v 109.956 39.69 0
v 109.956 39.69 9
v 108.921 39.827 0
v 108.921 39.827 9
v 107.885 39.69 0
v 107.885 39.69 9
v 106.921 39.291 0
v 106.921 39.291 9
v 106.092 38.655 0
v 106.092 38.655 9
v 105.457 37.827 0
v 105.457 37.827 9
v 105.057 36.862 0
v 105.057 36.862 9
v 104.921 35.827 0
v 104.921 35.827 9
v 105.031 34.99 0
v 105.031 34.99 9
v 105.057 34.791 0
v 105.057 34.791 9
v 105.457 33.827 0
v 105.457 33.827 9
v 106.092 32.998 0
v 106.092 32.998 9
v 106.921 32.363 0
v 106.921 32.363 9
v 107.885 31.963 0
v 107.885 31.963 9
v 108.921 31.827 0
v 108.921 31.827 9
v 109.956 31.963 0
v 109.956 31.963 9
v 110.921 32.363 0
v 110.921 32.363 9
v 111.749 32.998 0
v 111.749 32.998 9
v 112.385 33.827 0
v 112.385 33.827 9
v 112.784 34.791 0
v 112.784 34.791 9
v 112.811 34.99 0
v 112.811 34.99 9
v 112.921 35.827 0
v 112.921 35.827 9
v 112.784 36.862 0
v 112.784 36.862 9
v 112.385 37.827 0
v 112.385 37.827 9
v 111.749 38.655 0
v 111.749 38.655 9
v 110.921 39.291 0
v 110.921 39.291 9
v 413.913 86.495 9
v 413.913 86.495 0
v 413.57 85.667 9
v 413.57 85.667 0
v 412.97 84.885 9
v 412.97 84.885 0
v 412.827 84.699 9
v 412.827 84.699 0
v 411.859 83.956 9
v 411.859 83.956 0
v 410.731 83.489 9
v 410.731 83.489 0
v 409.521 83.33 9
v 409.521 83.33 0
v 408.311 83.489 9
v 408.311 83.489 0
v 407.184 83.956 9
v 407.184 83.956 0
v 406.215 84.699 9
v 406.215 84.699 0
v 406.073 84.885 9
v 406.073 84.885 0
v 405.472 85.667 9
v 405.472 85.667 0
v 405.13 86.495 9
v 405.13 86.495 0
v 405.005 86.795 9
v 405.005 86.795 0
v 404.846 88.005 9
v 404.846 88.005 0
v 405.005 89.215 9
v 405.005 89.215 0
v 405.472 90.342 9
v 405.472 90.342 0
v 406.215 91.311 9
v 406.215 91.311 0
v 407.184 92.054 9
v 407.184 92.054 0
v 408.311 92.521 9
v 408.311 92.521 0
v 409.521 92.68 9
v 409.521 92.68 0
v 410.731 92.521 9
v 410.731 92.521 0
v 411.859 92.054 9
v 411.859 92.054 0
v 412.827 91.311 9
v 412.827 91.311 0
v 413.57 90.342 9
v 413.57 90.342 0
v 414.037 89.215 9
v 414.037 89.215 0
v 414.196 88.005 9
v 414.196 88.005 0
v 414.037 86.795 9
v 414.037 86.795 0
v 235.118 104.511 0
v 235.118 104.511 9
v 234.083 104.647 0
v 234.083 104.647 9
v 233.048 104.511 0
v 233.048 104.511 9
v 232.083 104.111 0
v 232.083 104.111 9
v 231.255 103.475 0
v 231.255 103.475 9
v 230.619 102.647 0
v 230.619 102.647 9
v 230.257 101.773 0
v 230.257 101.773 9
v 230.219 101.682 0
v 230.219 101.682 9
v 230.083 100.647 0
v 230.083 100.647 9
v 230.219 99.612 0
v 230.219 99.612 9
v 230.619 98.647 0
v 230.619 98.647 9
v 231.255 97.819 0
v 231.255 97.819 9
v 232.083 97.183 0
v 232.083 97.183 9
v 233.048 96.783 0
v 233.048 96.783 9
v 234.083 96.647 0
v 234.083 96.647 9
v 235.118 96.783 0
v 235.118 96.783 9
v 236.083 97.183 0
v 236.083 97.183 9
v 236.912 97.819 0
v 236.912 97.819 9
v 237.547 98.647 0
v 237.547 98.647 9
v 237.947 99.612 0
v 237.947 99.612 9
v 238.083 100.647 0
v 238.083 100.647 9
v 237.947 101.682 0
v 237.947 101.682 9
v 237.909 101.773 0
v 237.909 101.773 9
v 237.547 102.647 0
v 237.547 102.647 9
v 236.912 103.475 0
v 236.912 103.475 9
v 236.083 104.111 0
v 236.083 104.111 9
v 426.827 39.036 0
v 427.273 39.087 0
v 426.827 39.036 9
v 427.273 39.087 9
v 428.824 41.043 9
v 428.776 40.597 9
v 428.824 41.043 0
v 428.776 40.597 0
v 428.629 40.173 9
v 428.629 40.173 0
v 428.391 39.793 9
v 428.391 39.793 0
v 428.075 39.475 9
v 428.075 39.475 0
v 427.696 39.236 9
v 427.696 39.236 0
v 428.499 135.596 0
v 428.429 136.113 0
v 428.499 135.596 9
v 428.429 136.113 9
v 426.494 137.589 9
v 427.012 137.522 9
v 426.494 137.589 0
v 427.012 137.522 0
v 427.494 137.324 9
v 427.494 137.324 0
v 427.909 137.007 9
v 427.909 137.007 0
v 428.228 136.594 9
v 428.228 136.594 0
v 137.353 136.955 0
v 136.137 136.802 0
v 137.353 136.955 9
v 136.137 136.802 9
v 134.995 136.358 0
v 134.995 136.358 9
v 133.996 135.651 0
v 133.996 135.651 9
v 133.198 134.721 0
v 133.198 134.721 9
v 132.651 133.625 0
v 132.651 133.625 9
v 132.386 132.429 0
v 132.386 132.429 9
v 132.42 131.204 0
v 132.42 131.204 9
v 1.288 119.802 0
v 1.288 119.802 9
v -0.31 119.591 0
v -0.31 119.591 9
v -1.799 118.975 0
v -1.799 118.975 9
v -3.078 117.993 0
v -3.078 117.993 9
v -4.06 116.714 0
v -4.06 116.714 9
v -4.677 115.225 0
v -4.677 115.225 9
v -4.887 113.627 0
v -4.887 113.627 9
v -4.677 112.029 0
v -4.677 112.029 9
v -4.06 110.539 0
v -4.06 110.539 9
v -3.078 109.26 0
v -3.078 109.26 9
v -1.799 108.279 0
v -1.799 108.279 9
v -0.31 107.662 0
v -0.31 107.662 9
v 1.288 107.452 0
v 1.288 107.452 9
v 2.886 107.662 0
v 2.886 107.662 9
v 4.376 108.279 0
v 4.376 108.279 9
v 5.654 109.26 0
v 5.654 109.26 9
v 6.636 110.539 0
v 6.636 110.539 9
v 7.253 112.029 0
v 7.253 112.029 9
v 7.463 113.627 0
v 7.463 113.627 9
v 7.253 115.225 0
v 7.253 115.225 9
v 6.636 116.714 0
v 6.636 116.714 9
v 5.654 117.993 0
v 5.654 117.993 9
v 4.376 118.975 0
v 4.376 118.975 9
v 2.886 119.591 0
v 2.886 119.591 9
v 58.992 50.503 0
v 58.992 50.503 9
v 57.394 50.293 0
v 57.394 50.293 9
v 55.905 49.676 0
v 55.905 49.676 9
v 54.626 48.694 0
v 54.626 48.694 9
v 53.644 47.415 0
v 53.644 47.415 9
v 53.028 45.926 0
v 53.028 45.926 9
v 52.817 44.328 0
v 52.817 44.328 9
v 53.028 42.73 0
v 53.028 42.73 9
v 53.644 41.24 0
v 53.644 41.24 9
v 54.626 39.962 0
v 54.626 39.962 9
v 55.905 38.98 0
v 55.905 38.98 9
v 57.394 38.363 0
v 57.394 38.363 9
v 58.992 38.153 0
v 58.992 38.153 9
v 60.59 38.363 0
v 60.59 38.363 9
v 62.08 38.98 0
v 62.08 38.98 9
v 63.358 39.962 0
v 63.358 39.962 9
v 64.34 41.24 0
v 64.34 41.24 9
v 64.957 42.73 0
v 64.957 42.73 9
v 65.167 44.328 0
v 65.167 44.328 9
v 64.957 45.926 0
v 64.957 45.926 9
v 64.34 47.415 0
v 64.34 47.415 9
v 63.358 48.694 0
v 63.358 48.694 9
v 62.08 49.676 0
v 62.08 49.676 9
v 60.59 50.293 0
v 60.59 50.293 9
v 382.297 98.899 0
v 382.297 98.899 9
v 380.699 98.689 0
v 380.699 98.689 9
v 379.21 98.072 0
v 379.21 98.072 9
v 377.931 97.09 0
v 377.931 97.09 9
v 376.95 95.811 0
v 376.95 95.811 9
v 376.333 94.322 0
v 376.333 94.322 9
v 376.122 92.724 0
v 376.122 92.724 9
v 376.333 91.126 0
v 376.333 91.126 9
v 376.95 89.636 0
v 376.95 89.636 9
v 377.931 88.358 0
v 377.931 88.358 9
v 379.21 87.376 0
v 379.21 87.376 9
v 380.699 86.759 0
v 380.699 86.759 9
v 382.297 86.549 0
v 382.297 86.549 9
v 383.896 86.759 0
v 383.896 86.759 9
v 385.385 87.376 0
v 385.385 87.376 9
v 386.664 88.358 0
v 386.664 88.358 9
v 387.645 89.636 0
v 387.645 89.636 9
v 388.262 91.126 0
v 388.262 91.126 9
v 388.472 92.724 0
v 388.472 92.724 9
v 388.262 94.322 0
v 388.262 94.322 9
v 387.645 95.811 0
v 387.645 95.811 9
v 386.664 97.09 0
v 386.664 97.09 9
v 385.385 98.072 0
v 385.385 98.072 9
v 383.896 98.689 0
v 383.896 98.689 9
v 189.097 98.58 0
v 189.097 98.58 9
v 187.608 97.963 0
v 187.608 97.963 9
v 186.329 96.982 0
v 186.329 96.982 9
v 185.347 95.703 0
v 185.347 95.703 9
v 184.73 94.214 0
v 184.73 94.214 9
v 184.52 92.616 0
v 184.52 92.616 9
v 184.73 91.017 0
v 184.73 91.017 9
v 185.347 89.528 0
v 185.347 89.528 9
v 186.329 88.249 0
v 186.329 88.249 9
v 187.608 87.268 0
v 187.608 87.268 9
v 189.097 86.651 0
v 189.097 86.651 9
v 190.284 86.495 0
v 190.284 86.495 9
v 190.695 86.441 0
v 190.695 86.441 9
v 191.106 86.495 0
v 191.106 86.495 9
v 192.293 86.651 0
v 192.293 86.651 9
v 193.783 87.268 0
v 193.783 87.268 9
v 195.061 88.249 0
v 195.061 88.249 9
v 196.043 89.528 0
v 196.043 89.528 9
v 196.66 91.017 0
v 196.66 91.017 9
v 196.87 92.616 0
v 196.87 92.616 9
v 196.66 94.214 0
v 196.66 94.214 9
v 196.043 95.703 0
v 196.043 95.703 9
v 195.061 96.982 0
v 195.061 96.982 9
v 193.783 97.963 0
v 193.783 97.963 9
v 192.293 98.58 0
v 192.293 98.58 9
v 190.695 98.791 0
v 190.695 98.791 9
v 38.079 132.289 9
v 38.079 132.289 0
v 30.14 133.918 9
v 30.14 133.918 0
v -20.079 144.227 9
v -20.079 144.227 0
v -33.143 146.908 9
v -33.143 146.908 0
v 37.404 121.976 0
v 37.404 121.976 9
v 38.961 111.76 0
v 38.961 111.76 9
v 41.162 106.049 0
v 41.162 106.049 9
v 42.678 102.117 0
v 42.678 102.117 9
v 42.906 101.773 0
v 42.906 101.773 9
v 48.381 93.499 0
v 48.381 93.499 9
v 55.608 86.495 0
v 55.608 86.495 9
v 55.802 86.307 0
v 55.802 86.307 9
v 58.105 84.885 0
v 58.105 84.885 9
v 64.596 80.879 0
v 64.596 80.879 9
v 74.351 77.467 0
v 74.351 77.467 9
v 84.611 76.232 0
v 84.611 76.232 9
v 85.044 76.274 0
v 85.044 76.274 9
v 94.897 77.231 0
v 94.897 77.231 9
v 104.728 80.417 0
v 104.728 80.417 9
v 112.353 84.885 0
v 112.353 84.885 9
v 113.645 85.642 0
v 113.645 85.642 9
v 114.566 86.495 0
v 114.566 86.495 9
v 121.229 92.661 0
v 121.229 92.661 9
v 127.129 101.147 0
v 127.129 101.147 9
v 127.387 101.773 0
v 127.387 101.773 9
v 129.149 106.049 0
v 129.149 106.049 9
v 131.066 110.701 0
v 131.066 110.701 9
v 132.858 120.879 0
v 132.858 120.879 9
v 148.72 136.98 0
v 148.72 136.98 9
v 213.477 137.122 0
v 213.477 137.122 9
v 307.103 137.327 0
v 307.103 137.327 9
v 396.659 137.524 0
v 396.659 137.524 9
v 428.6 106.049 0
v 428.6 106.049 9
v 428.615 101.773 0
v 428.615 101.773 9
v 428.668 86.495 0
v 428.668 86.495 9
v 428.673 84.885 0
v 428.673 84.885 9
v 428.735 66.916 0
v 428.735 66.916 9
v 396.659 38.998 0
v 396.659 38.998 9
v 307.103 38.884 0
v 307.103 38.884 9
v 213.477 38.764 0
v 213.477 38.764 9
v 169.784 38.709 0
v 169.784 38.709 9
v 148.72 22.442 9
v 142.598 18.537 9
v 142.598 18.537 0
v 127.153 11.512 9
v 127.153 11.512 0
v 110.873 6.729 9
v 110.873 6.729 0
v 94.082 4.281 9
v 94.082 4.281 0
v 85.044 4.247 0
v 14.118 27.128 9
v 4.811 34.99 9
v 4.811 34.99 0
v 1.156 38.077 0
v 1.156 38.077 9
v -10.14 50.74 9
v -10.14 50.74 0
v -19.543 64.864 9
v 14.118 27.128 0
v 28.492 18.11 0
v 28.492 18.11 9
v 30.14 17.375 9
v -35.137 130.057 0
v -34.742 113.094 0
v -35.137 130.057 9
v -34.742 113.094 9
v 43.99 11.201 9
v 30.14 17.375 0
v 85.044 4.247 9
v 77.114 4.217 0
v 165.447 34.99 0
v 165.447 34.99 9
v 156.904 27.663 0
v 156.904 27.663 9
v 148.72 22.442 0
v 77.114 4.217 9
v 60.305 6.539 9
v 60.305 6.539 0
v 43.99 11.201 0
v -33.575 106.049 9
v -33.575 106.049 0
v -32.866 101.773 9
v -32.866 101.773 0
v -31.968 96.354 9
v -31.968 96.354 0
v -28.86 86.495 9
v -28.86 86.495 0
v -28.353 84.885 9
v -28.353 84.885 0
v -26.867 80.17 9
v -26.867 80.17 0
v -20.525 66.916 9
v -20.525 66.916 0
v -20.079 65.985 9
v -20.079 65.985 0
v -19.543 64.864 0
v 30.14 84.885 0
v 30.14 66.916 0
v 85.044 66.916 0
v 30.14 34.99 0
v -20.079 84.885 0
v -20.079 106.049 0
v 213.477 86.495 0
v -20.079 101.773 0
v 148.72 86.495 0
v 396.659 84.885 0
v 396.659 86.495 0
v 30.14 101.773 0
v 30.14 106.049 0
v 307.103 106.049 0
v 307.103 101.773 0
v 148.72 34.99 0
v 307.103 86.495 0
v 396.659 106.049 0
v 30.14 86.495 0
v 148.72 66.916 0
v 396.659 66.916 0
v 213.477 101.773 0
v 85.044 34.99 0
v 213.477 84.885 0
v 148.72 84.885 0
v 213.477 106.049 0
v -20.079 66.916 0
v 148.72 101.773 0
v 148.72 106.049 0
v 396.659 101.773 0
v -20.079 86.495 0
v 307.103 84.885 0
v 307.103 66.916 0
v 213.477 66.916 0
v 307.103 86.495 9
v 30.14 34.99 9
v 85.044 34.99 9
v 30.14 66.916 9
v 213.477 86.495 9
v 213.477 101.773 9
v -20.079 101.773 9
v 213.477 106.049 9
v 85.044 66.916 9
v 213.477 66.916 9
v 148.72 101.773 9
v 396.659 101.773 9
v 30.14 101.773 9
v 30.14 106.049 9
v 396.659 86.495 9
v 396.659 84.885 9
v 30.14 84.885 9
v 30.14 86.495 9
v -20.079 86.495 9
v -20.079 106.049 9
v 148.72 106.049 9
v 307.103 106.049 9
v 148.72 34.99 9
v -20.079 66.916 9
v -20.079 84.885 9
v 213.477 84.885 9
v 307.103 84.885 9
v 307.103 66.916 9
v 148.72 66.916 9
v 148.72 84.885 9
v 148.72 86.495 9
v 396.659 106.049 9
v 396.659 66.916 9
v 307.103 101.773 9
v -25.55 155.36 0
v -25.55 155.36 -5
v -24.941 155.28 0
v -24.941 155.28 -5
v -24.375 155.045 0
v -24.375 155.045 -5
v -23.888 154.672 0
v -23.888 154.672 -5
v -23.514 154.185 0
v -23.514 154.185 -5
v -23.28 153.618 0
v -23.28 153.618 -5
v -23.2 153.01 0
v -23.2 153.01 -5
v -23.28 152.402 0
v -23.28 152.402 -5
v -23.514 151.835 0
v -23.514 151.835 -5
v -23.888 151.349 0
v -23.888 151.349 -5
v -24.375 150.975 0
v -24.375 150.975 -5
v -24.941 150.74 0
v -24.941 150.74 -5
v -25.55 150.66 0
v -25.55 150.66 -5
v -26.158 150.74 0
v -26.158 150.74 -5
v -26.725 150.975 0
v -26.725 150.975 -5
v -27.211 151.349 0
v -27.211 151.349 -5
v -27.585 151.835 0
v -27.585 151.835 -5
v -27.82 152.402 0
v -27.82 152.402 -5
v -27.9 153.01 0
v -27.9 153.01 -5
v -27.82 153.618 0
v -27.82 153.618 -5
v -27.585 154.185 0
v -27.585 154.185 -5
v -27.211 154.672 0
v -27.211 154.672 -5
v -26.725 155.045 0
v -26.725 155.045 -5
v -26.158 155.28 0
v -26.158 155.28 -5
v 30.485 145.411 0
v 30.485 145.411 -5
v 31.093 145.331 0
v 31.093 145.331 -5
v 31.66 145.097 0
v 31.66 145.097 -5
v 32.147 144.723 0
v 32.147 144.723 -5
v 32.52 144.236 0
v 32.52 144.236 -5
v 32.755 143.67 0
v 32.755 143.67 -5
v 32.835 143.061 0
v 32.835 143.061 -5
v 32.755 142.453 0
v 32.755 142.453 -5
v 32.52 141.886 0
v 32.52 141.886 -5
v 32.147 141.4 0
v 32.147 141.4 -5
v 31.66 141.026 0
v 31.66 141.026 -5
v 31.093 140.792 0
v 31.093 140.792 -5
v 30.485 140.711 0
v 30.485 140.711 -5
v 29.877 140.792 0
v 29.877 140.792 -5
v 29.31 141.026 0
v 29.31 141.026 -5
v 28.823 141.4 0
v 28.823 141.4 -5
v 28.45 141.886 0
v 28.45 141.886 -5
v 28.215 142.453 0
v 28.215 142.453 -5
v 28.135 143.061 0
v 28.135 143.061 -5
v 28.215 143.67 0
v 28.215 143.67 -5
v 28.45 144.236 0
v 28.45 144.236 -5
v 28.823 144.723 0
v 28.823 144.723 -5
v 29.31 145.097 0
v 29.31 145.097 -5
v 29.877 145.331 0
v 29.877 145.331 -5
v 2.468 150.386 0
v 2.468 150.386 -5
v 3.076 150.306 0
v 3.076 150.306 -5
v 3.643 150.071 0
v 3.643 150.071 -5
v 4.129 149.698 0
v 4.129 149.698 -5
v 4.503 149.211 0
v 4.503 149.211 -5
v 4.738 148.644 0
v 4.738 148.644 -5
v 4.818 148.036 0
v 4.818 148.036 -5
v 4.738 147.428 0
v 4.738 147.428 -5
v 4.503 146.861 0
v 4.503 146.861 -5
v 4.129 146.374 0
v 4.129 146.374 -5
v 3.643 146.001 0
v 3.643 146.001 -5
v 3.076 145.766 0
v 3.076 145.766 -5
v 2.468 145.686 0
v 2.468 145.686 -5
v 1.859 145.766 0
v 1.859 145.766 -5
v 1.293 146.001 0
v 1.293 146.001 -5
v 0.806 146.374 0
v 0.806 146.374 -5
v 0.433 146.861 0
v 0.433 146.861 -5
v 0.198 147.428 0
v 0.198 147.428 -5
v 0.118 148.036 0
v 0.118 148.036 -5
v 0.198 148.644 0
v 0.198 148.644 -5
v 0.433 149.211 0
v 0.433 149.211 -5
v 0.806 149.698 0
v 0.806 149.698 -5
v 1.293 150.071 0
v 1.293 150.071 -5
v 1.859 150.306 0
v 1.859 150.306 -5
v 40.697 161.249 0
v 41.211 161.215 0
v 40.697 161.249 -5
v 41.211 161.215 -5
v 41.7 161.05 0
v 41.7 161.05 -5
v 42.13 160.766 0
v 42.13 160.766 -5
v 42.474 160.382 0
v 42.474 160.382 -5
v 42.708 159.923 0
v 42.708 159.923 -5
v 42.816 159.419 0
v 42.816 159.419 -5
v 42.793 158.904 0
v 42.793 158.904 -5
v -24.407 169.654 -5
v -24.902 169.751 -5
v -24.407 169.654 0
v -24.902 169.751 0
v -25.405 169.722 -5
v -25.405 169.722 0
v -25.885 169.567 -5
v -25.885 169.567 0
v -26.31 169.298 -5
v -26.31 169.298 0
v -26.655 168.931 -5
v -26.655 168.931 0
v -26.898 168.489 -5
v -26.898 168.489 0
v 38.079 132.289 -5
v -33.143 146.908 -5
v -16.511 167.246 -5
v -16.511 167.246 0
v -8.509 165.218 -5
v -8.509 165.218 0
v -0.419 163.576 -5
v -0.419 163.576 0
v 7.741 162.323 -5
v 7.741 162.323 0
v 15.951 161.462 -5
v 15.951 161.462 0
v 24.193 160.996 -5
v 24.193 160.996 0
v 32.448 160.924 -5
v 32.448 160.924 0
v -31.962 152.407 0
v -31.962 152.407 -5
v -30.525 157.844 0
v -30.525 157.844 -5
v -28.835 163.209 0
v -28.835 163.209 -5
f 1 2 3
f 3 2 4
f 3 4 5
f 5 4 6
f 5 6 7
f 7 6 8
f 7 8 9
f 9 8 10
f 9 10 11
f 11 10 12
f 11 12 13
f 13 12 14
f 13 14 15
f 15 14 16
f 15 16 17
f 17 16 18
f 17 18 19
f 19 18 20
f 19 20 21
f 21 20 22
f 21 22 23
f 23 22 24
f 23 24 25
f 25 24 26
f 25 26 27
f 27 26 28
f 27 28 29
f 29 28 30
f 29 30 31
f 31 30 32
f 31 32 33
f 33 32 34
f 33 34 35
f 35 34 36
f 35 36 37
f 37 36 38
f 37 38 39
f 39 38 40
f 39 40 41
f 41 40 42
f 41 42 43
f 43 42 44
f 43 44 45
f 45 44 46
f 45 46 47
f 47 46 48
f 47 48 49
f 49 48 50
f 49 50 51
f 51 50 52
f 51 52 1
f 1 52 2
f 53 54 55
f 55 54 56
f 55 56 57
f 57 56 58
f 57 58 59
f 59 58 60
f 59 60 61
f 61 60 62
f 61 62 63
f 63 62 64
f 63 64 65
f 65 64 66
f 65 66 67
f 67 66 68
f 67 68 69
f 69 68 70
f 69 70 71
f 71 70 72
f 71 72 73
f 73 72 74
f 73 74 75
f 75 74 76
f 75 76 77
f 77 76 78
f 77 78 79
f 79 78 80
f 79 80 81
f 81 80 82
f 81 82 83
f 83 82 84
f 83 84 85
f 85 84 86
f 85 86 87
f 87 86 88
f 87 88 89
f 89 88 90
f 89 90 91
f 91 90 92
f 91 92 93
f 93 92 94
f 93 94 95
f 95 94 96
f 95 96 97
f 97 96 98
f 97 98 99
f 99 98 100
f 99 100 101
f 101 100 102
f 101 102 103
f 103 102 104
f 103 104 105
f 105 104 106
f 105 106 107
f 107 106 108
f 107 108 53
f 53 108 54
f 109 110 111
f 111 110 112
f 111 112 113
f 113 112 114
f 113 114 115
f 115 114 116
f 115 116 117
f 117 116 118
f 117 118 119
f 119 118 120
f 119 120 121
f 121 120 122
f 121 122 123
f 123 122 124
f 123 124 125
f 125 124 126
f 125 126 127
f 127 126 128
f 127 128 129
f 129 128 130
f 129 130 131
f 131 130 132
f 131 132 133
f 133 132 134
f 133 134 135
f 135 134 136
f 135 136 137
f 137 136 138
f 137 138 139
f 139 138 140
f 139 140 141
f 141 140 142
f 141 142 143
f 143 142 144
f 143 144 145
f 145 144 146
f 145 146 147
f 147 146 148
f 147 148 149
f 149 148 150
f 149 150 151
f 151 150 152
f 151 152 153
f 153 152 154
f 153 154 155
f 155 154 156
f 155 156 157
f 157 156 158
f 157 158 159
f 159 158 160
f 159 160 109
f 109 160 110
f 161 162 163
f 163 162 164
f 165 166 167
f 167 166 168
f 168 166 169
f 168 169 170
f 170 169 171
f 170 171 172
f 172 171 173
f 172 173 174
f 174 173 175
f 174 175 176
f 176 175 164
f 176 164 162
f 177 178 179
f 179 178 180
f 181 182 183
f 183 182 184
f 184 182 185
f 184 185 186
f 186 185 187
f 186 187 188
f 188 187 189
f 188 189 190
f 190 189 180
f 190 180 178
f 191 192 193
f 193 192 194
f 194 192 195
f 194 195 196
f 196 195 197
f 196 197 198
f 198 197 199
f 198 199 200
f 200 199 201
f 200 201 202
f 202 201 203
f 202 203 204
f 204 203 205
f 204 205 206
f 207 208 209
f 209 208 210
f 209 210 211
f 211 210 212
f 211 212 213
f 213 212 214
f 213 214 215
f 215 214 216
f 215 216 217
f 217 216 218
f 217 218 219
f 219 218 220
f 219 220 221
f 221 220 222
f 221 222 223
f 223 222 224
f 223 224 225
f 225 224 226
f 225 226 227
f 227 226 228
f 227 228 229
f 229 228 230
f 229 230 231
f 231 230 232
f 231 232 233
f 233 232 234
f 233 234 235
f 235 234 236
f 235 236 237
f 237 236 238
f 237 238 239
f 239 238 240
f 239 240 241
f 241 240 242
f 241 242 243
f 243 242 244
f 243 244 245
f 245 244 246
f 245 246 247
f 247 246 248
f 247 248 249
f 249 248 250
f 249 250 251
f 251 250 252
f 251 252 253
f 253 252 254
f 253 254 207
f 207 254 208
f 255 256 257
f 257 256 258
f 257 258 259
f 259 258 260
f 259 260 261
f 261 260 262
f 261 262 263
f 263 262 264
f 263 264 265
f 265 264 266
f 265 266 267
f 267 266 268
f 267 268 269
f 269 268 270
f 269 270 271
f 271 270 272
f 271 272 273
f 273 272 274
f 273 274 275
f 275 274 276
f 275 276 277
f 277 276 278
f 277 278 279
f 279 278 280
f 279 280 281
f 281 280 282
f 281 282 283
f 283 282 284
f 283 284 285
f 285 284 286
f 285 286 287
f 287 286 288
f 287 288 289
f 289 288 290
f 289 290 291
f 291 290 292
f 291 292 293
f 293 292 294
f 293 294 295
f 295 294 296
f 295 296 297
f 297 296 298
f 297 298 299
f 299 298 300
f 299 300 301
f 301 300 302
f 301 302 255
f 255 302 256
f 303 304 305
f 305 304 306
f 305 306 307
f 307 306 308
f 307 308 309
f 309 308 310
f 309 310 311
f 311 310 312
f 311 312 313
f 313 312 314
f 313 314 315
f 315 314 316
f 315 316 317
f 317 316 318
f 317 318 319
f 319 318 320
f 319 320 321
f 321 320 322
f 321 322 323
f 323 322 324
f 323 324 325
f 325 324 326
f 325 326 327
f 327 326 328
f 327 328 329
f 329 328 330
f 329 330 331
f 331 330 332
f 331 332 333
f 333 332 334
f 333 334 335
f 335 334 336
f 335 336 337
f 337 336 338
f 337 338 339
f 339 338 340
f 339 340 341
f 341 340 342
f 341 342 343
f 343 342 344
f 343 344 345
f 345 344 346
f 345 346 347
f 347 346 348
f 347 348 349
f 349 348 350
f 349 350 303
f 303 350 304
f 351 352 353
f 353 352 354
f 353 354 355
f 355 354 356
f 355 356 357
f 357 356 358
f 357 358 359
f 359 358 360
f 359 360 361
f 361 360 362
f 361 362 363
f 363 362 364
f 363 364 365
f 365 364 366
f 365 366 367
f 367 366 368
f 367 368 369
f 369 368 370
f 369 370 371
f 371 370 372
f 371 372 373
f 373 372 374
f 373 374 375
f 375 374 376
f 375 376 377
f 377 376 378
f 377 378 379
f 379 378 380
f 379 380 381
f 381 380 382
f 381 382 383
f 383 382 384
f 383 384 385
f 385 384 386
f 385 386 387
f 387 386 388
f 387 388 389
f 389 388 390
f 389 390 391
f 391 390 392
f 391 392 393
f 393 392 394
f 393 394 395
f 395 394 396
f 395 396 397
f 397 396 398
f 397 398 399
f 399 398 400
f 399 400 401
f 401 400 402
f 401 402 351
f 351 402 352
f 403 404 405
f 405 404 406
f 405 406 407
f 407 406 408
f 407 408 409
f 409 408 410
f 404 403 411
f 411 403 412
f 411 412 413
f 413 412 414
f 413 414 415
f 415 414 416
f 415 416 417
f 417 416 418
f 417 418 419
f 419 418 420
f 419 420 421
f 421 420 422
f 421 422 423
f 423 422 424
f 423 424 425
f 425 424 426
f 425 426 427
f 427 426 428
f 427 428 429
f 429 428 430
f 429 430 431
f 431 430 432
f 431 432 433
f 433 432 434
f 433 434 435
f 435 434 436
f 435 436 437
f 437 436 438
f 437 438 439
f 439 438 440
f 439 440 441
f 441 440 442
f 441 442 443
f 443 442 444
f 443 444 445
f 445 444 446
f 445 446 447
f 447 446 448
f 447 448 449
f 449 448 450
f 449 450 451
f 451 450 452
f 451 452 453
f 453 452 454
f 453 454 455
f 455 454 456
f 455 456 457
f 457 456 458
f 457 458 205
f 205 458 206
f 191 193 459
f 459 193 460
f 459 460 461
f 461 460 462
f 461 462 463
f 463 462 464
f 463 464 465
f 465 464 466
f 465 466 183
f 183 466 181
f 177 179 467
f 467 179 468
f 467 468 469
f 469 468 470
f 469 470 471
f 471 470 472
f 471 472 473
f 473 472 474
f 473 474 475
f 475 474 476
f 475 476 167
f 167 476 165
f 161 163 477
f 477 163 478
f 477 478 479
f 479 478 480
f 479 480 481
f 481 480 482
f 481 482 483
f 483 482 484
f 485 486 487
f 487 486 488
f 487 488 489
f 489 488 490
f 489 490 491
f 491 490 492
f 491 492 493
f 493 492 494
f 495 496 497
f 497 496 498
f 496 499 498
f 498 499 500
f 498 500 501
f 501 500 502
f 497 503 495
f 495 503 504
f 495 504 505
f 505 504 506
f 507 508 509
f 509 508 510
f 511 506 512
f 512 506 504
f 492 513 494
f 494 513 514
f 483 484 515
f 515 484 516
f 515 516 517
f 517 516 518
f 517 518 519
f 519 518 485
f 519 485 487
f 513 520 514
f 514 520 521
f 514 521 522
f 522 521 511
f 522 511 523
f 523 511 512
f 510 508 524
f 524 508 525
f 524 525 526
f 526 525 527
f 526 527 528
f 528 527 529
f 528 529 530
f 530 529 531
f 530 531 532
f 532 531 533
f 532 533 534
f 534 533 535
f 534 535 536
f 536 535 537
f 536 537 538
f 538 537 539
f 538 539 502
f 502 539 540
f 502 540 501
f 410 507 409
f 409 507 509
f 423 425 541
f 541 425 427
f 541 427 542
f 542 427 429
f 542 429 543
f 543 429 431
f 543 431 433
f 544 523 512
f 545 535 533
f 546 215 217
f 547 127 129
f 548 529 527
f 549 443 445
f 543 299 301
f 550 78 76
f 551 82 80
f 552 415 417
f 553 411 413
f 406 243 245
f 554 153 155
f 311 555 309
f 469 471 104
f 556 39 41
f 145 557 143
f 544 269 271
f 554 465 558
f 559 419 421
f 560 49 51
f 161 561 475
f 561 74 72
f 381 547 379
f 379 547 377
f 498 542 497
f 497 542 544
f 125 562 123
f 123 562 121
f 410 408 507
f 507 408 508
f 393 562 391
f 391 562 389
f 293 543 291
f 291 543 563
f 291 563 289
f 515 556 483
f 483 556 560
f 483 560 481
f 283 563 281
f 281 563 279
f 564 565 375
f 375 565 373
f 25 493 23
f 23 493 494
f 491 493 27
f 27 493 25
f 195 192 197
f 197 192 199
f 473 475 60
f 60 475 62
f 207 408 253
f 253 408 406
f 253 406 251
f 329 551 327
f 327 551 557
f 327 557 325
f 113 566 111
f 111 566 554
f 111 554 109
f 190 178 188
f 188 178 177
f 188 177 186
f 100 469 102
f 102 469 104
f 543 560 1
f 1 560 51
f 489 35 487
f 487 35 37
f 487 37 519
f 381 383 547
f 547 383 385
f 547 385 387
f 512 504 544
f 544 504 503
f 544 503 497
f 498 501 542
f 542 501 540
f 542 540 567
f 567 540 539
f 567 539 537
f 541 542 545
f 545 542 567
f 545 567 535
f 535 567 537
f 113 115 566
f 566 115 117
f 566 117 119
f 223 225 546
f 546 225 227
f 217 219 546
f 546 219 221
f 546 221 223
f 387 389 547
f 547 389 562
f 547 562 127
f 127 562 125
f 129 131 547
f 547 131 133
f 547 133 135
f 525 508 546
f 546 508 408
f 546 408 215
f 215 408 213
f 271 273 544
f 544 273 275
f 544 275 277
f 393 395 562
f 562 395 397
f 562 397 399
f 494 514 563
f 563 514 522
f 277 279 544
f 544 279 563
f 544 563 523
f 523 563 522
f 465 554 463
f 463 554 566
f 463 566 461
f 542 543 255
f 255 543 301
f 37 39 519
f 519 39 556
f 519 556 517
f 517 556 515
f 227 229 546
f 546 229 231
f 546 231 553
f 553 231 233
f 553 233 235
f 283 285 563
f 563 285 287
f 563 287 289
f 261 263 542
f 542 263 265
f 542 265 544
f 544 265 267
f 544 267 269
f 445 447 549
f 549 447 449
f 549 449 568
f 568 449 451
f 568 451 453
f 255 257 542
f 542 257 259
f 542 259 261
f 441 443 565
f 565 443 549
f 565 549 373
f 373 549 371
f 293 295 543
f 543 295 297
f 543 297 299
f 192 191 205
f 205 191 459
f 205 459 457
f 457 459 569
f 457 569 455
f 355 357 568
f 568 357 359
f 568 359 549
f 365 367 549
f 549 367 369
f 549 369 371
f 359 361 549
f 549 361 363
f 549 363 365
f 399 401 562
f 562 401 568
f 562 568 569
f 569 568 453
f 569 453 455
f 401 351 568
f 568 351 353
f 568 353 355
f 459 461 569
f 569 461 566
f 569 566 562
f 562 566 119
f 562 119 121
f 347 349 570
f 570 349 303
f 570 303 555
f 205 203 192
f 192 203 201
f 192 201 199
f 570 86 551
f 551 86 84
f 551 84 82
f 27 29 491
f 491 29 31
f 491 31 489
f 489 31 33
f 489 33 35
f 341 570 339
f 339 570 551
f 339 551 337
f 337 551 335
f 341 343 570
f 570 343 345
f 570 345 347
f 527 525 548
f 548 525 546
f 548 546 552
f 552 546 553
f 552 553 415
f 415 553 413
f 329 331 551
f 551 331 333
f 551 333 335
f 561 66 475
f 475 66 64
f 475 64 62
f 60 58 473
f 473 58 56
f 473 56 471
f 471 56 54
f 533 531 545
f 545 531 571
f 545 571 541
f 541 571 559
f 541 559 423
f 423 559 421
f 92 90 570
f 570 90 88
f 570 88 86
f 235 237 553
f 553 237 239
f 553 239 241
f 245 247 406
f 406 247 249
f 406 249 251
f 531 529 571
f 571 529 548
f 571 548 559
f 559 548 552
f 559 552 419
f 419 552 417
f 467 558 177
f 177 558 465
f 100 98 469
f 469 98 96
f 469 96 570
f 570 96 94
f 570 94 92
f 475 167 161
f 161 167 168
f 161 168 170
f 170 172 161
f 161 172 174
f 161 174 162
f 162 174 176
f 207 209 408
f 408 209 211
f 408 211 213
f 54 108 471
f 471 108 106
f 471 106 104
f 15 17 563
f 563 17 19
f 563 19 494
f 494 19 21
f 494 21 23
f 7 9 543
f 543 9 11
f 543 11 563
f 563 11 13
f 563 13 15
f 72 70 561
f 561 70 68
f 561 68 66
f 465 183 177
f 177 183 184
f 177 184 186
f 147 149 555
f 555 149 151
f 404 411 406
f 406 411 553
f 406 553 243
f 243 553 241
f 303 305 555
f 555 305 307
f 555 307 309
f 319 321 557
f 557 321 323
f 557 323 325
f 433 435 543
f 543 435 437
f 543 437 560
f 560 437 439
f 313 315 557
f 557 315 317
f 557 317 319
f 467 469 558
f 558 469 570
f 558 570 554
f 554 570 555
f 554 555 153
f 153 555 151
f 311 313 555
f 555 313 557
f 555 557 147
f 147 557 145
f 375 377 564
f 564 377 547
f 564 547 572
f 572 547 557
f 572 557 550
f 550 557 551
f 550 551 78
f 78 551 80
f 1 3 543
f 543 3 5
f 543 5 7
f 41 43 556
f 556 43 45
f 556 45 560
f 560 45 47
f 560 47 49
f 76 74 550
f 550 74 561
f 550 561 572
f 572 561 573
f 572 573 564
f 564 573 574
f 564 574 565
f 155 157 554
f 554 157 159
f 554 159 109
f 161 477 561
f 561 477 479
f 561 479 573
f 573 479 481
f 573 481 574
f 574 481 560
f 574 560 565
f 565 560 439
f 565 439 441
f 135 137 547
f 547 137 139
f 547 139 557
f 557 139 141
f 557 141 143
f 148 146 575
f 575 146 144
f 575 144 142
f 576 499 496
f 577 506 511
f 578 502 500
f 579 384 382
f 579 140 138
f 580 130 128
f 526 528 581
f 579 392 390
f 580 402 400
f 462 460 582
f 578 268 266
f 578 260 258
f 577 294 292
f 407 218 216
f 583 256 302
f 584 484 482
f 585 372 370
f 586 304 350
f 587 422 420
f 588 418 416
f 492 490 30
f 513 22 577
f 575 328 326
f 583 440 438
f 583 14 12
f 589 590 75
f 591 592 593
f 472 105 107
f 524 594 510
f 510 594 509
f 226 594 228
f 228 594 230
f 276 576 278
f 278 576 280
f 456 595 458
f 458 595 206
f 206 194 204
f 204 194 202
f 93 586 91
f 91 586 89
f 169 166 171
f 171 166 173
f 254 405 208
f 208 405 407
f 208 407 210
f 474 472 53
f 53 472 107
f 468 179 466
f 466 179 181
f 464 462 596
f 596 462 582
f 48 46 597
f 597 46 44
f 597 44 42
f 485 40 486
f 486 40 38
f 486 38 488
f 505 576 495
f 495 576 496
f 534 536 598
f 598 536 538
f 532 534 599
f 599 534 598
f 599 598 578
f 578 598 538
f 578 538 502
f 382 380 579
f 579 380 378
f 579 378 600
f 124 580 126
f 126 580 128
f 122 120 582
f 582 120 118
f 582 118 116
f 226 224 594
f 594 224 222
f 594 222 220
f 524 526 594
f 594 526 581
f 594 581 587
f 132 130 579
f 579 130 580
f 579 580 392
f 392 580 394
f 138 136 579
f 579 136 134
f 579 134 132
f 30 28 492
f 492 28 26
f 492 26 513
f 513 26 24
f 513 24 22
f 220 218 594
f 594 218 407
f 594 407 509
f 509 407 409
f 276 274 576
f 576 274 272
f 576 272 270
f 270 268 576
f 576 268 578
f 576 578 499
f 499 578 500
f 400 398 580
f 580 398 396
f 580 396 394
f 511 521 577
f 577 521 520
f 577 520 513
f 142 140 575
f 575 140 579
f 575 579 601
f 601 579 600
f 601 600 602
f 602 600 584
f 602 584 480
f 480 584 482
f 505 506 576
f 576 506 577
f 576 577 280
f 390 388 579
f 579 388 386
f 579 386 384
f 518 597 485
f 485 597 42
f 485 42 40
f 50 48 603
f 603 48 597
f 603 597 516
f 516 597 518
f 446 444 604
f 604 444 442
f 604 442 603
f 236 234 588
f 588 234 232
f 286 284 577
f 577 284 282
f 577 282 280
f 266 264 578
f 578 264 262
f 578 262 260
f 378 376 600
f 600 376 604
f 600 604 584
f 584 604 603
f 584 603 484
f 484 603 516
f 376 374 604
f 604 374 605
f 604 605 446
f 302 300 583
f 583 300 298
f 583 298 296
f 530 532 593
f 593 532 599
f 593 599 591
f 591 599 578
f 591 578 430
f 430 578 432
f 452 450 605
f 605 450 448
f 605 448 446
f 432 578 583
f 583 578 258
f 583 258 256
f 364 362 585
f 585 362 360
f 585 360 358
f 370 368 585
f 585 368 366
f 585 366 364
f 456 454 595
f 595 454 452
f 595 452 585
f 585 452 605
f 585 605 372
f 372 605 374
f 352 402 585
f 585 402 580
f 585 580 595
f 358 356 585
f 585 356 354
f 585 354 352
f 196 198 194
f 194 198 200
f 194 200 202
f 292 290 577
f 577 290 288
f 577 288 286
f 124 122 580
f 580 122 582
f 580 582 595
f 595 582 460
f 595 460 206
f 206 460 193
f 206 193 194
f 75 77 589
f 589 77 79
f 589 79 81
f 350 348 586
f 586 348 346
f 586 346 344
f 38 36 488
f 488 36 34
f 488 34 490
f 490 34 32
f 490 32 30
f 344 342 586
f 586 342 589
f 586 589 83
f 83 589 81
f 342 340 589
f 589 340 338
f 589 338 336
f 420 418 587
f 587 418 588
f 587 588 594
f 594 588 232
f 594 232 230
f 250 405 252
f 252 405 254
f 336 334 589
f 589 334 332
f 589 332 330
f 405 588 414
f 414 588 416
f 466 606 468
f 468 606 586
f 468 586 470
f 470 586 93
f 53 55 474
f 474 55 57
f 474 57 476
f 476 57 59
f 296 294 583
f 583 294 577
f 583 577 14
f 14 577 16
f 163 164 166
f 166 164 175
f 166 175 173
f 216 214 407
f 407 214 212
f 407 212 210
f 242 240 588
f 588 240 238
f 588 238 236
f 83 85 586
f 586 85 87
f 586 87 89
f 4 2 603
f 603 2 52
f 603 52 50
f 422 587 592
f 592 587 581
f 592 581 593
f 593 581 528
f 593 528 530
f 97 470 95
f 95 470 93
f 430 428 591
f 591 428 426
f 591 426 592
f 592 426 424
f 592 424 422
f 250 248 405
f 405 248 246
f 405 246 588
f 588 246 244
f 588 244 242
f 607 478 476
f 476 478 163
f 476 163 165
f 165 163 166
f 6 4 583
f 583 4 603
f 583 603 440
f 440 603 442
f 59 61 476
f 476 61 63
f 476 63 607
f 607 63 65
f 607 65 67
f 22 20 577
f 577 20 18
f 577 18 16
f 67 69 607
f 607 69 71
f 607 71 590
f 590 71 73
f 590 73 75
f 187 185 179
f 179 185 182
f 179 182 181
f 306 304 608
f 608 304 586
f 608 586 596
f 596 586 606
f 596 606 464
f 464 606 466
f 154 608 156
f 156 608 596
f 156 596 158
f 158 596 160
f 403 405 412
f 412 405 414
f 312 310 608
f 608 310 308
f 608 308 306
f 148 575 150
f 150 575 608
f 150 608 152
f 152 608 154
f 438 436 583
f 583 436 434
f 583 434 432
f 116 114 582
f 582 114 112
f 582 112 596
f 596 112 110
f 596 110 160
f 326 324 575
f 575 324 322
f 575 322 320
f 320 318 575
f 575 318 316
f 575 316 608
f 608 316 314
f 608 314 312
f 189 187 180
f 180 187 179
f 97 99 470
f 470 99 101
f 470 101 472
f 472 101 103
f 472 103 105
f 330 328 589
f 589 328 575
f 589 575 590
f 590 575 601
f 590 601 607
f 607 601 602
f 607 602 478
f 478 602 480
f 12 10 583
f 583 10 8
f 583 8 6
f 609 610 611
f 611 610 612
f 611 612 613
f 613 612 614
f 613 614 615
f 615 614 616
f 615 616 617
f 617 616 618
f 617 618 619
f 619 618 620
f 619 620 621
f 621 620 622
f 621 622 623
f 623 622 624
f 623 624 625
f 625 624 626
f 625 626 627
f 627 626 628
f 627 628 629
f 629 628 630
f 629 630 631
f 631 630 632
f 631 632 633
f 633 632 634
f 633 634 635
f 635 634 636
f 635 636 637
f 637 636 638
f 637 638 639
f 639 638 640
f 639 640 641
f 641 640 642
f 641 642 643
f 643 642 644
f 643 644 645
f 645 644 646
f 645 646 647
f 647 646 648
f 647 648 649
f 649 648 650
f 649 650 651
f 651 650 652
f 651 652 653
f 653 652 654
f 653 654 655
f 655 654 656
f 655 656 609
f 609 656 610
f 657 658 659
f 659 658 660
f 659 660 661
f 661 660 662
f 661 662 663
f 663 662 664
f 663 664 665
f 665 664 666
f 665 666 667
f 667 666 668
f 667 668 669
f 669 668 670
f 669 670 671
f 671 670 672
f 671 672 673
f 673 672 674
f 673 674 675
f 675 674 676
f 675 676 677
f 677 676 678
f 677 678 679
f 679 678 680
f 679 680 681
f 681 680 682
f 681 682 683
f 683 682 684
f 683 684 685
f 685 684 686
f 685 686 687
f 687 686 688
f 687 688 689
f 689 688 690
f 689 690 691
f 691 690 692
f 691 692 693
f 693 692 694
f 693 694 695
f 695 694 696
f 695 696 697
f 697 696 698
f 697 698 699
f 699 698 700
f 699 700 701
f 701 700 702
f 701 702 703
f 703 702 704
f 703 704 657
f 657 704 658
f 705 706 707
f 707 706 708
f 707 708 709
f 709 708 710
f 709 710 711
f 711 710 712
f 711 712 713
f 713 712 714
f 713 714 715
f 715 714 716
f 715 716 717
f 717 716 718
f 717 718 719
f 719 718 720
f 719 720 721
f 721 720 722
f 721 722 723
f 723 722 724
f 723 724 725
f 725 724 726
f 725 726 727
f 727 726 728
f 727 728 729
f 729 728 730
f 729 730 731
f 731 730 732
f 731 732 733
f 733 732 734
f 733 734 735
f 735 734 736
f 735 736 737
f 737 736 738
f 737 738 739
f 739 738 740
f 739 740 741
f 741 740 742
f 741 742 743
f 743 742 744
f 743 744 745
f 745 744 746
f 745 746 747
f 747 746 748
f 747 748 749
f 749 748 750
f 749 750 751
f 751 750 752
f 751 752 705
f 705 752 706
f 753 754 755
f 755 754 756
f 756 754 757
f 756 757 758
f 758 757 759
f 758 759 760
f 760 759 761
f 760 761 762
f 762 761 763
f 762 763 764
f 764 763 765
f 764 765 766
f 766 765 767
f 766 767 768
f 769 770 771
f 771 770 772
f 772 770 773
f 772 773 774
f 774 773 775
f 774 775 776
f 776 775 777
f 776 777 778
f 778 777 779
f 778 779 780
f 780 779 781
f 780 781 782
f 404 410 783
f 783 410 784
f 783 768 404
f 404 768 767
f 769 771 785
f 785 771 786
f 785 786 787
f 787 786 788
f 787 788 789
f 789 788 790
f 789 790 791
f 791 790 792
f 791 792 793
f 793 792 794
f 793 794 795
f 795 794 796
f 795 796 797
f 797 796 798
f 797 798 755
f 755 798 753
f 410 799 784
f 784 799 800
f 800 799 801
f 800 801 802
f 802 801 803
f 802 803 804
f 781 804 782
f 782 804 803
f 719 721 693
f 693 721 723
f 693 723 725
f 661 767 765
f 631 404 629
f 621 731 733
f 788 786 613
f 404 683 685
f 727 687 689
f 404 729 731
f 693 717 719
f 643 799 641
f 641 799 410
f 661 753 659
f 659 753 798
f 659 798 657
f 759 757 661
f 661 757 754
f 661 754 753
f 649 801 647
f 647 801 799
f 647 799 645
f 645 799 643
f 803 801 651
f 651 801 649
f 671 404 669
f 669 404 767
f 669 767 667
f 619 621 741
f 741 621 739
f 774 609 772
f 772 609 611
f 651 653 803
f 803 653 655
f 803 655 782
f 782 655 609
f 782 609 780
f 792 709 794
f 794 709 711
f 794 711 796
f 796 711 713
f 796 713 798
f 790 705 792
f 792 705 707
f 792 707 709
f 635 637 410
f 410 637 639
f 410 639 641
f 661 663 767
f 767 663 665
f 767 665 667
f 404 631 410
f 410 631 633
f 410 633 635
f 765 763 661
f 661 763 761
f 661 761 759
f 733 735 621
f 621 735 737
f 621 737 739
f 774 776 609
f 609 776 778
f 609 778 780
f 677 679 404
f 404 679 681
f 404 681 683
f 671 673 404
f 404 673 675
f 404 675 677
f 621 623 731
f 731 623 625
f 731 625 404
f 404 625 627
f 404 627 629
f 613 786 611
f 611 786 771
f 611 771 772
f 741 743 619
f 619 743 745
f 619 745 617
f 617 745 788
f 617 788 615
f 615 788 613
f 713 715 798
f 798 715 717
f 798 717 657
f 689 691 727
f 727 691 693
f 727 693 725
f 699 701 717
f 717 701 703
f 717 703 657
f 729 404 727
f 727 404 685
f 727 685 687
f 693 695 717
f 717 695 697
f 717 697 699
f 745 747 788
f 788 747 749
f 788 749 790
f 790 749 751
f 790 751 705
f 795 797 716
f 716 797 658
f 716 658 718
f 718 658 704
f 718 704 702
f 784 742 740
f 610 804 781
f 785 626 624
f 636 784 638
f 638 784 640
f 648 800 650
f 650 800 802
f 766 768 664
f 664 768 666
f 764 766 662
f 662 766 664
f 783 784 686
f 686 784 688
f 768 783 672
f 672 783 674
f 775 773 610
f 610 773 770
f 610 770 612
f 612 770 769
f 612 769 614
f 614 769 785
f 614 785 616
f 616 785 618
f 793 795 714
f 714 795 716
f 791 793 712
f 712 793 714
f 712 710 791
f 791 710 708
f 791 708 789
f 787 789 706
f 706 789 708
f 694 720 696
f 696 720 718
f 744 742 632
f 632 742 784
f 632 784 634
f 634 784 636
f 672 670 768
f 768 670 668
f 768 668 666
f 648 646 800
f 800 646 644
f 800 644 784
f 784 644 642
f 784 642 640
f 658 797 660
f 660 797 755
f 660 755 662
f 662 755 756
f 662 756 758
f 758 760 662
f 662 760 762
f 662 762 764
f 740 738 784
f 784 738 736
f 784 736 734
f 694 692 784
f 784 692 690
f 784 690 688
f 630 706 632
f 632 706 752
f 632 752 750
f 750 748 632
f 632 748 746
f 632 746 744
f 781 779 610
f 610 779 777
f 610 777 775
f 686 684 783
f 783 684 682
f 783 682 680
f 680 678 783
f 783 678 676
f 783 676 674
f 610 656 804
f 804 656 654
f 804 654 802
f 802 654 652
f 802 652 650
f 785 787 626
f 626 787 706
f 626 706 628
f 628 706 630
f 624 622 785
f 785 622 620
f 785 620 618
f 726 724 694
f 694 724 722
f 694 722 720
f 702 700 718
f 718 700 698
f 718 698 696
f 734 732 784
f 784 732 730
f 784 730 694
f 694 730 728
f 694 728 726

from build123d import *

# Parameters (mm, degrees)
ESBO_O1_R                = 6.175
ESBO_O1_R_2              = 4.675
ESBO_O1_R_3              = 4
RESSALTO_EXTRUS_O1_DEPTH = 9
ESBO_O3_R                = 2.35
RESSALTO_EXTRUS_O2_DEPTH = 5
FILETE1_R                = 2
FILETE2_R                = 5
FILETE3_R                = 2


with BuildPart() as part:
    # Esboço1 → Ressalto-extrusão1 (new body)
    with BuildSketch(Plane.XY):
        with BuildLine():
            Line((131.185001268, 136.941324617), (428.491868014, 137.593385628))
            Line((428.491868014, 137.593385628), (428.831279068, 39.038667427))
            Line((428.831279068, 39.038667427), (169.784133842, 38.708869148))
            ThreePointArc((169.784133842, 38.708869148), (28.491582051, 18.109560868), (-33.143087689, 146.908179569))
            Line((-33.143087689, 146.908179569), (38.078504056, 132.288651538))
            ThreePointArc((38.078504056, 132.288651538), (87.546420662, 76.2884039), (131.185001268, 136.941324617))
        make_face()
        with Locations((190.69502548, 92.615691457)):
            Circle(ESBO_O1_R, mode=Mode.SUBTRACT)
        with Locations((382.297443759, 92.723982486)):
            Circle(ESBO_O1_R, mode=Mode.SUBTRACT)
        with Locations((409.52113325, 88.004907998)):
            Circle(ESBO_O1_R_2, mode=Mode.SUBTRACT)
        with Locations((234.083144105, 100.646929333)):
            Circle(ESBO_O1_R_3, mode=Mode.SUBTRACT)
        with Locations((58.992106854, 44.327990976)):
            Circle(ESBO_O1_R, mode=Mode.SUBTRACT)
        with Locations((108.920722634, 35.826602606)):
            Circle(ESBO_O1_R_3, mode=Mode.SUBTRACT)
        with Locations((1.288049242, 113.626800727)):
            Circle(ESBO_O1_R, mode=Mode.SUBTRACT)
    extrude(amount=RESSALTO_EXTRUS_O1_DEPTH)

    # Filete2
    filete2_edges = [part.edges().sort_by_distance(p)[0] for p in [
        (131.185001268, 136.941324617, 4.5),
    ]]
    fillet(filete2_edges, radius=FILETE2_R)

    # Filete3
    filete3_edges = [part.edges().sort_by_distance(p)[0] for p in [
        (428.491868014, 137.593385628, 4.5),
        (428.831279068, 39.038667427, 4.5),
    ]]
    fillet(filete3_edges, radius=FILETE3_R)


with BuildPart() as body_2:
    # Esboço3 → Ressalto-extrusão2 (new body)
    with BuildSketch(Plane(origin=(0, 0, 0), x_dir=(-1, 0, 0), z_dir=(0, 0, -1))):
        with BuildLine():
            Line((-43.239696233, 161.428448711), (-38.078504056, 132.288651538))
            Line((-38.078504056, 132.288651538), (33.143087689, 146.908179569))
            ThreePointArc((33.143087689, 146.908179569), (30.256436099, 158.757790962), (26.1859926, 170.254639978))
            ThreePointArc((26.1859926, 170.254639978), (-8.074093344, 162.280204252), (-43.239696233, 161.428448711))
        make_face()
        with Locations((-2.467708184, 148.035842502)):
            Circle(ESBO_O3_R, mode=Mode.SUBTRACT)
        with Locations((-30.485058792, 143.0614585)):
            Circle(ESBO_O3_R, mode=Mode.SUBTRACT)
        with Locations((25.549642425, 153.010226504)):
            Circle(ESBO_O3_R, mode=Mode.SUBTRACT)
    extrude(amount=RESSALTO_EXTRUS_O2_DEPTH)

    # Filete1
    filete1_edges = [body_2.edges().sort_by_distance(p)[0] for p in [
        (43.239696233, 161.428448711, -2.5),
        (-26.1859926, 170.254639978, -2.5),
    ]]
    fillet(filete1_edges, radius=FILETE1_R)


solid = Compound([part.part, body_2.part])
